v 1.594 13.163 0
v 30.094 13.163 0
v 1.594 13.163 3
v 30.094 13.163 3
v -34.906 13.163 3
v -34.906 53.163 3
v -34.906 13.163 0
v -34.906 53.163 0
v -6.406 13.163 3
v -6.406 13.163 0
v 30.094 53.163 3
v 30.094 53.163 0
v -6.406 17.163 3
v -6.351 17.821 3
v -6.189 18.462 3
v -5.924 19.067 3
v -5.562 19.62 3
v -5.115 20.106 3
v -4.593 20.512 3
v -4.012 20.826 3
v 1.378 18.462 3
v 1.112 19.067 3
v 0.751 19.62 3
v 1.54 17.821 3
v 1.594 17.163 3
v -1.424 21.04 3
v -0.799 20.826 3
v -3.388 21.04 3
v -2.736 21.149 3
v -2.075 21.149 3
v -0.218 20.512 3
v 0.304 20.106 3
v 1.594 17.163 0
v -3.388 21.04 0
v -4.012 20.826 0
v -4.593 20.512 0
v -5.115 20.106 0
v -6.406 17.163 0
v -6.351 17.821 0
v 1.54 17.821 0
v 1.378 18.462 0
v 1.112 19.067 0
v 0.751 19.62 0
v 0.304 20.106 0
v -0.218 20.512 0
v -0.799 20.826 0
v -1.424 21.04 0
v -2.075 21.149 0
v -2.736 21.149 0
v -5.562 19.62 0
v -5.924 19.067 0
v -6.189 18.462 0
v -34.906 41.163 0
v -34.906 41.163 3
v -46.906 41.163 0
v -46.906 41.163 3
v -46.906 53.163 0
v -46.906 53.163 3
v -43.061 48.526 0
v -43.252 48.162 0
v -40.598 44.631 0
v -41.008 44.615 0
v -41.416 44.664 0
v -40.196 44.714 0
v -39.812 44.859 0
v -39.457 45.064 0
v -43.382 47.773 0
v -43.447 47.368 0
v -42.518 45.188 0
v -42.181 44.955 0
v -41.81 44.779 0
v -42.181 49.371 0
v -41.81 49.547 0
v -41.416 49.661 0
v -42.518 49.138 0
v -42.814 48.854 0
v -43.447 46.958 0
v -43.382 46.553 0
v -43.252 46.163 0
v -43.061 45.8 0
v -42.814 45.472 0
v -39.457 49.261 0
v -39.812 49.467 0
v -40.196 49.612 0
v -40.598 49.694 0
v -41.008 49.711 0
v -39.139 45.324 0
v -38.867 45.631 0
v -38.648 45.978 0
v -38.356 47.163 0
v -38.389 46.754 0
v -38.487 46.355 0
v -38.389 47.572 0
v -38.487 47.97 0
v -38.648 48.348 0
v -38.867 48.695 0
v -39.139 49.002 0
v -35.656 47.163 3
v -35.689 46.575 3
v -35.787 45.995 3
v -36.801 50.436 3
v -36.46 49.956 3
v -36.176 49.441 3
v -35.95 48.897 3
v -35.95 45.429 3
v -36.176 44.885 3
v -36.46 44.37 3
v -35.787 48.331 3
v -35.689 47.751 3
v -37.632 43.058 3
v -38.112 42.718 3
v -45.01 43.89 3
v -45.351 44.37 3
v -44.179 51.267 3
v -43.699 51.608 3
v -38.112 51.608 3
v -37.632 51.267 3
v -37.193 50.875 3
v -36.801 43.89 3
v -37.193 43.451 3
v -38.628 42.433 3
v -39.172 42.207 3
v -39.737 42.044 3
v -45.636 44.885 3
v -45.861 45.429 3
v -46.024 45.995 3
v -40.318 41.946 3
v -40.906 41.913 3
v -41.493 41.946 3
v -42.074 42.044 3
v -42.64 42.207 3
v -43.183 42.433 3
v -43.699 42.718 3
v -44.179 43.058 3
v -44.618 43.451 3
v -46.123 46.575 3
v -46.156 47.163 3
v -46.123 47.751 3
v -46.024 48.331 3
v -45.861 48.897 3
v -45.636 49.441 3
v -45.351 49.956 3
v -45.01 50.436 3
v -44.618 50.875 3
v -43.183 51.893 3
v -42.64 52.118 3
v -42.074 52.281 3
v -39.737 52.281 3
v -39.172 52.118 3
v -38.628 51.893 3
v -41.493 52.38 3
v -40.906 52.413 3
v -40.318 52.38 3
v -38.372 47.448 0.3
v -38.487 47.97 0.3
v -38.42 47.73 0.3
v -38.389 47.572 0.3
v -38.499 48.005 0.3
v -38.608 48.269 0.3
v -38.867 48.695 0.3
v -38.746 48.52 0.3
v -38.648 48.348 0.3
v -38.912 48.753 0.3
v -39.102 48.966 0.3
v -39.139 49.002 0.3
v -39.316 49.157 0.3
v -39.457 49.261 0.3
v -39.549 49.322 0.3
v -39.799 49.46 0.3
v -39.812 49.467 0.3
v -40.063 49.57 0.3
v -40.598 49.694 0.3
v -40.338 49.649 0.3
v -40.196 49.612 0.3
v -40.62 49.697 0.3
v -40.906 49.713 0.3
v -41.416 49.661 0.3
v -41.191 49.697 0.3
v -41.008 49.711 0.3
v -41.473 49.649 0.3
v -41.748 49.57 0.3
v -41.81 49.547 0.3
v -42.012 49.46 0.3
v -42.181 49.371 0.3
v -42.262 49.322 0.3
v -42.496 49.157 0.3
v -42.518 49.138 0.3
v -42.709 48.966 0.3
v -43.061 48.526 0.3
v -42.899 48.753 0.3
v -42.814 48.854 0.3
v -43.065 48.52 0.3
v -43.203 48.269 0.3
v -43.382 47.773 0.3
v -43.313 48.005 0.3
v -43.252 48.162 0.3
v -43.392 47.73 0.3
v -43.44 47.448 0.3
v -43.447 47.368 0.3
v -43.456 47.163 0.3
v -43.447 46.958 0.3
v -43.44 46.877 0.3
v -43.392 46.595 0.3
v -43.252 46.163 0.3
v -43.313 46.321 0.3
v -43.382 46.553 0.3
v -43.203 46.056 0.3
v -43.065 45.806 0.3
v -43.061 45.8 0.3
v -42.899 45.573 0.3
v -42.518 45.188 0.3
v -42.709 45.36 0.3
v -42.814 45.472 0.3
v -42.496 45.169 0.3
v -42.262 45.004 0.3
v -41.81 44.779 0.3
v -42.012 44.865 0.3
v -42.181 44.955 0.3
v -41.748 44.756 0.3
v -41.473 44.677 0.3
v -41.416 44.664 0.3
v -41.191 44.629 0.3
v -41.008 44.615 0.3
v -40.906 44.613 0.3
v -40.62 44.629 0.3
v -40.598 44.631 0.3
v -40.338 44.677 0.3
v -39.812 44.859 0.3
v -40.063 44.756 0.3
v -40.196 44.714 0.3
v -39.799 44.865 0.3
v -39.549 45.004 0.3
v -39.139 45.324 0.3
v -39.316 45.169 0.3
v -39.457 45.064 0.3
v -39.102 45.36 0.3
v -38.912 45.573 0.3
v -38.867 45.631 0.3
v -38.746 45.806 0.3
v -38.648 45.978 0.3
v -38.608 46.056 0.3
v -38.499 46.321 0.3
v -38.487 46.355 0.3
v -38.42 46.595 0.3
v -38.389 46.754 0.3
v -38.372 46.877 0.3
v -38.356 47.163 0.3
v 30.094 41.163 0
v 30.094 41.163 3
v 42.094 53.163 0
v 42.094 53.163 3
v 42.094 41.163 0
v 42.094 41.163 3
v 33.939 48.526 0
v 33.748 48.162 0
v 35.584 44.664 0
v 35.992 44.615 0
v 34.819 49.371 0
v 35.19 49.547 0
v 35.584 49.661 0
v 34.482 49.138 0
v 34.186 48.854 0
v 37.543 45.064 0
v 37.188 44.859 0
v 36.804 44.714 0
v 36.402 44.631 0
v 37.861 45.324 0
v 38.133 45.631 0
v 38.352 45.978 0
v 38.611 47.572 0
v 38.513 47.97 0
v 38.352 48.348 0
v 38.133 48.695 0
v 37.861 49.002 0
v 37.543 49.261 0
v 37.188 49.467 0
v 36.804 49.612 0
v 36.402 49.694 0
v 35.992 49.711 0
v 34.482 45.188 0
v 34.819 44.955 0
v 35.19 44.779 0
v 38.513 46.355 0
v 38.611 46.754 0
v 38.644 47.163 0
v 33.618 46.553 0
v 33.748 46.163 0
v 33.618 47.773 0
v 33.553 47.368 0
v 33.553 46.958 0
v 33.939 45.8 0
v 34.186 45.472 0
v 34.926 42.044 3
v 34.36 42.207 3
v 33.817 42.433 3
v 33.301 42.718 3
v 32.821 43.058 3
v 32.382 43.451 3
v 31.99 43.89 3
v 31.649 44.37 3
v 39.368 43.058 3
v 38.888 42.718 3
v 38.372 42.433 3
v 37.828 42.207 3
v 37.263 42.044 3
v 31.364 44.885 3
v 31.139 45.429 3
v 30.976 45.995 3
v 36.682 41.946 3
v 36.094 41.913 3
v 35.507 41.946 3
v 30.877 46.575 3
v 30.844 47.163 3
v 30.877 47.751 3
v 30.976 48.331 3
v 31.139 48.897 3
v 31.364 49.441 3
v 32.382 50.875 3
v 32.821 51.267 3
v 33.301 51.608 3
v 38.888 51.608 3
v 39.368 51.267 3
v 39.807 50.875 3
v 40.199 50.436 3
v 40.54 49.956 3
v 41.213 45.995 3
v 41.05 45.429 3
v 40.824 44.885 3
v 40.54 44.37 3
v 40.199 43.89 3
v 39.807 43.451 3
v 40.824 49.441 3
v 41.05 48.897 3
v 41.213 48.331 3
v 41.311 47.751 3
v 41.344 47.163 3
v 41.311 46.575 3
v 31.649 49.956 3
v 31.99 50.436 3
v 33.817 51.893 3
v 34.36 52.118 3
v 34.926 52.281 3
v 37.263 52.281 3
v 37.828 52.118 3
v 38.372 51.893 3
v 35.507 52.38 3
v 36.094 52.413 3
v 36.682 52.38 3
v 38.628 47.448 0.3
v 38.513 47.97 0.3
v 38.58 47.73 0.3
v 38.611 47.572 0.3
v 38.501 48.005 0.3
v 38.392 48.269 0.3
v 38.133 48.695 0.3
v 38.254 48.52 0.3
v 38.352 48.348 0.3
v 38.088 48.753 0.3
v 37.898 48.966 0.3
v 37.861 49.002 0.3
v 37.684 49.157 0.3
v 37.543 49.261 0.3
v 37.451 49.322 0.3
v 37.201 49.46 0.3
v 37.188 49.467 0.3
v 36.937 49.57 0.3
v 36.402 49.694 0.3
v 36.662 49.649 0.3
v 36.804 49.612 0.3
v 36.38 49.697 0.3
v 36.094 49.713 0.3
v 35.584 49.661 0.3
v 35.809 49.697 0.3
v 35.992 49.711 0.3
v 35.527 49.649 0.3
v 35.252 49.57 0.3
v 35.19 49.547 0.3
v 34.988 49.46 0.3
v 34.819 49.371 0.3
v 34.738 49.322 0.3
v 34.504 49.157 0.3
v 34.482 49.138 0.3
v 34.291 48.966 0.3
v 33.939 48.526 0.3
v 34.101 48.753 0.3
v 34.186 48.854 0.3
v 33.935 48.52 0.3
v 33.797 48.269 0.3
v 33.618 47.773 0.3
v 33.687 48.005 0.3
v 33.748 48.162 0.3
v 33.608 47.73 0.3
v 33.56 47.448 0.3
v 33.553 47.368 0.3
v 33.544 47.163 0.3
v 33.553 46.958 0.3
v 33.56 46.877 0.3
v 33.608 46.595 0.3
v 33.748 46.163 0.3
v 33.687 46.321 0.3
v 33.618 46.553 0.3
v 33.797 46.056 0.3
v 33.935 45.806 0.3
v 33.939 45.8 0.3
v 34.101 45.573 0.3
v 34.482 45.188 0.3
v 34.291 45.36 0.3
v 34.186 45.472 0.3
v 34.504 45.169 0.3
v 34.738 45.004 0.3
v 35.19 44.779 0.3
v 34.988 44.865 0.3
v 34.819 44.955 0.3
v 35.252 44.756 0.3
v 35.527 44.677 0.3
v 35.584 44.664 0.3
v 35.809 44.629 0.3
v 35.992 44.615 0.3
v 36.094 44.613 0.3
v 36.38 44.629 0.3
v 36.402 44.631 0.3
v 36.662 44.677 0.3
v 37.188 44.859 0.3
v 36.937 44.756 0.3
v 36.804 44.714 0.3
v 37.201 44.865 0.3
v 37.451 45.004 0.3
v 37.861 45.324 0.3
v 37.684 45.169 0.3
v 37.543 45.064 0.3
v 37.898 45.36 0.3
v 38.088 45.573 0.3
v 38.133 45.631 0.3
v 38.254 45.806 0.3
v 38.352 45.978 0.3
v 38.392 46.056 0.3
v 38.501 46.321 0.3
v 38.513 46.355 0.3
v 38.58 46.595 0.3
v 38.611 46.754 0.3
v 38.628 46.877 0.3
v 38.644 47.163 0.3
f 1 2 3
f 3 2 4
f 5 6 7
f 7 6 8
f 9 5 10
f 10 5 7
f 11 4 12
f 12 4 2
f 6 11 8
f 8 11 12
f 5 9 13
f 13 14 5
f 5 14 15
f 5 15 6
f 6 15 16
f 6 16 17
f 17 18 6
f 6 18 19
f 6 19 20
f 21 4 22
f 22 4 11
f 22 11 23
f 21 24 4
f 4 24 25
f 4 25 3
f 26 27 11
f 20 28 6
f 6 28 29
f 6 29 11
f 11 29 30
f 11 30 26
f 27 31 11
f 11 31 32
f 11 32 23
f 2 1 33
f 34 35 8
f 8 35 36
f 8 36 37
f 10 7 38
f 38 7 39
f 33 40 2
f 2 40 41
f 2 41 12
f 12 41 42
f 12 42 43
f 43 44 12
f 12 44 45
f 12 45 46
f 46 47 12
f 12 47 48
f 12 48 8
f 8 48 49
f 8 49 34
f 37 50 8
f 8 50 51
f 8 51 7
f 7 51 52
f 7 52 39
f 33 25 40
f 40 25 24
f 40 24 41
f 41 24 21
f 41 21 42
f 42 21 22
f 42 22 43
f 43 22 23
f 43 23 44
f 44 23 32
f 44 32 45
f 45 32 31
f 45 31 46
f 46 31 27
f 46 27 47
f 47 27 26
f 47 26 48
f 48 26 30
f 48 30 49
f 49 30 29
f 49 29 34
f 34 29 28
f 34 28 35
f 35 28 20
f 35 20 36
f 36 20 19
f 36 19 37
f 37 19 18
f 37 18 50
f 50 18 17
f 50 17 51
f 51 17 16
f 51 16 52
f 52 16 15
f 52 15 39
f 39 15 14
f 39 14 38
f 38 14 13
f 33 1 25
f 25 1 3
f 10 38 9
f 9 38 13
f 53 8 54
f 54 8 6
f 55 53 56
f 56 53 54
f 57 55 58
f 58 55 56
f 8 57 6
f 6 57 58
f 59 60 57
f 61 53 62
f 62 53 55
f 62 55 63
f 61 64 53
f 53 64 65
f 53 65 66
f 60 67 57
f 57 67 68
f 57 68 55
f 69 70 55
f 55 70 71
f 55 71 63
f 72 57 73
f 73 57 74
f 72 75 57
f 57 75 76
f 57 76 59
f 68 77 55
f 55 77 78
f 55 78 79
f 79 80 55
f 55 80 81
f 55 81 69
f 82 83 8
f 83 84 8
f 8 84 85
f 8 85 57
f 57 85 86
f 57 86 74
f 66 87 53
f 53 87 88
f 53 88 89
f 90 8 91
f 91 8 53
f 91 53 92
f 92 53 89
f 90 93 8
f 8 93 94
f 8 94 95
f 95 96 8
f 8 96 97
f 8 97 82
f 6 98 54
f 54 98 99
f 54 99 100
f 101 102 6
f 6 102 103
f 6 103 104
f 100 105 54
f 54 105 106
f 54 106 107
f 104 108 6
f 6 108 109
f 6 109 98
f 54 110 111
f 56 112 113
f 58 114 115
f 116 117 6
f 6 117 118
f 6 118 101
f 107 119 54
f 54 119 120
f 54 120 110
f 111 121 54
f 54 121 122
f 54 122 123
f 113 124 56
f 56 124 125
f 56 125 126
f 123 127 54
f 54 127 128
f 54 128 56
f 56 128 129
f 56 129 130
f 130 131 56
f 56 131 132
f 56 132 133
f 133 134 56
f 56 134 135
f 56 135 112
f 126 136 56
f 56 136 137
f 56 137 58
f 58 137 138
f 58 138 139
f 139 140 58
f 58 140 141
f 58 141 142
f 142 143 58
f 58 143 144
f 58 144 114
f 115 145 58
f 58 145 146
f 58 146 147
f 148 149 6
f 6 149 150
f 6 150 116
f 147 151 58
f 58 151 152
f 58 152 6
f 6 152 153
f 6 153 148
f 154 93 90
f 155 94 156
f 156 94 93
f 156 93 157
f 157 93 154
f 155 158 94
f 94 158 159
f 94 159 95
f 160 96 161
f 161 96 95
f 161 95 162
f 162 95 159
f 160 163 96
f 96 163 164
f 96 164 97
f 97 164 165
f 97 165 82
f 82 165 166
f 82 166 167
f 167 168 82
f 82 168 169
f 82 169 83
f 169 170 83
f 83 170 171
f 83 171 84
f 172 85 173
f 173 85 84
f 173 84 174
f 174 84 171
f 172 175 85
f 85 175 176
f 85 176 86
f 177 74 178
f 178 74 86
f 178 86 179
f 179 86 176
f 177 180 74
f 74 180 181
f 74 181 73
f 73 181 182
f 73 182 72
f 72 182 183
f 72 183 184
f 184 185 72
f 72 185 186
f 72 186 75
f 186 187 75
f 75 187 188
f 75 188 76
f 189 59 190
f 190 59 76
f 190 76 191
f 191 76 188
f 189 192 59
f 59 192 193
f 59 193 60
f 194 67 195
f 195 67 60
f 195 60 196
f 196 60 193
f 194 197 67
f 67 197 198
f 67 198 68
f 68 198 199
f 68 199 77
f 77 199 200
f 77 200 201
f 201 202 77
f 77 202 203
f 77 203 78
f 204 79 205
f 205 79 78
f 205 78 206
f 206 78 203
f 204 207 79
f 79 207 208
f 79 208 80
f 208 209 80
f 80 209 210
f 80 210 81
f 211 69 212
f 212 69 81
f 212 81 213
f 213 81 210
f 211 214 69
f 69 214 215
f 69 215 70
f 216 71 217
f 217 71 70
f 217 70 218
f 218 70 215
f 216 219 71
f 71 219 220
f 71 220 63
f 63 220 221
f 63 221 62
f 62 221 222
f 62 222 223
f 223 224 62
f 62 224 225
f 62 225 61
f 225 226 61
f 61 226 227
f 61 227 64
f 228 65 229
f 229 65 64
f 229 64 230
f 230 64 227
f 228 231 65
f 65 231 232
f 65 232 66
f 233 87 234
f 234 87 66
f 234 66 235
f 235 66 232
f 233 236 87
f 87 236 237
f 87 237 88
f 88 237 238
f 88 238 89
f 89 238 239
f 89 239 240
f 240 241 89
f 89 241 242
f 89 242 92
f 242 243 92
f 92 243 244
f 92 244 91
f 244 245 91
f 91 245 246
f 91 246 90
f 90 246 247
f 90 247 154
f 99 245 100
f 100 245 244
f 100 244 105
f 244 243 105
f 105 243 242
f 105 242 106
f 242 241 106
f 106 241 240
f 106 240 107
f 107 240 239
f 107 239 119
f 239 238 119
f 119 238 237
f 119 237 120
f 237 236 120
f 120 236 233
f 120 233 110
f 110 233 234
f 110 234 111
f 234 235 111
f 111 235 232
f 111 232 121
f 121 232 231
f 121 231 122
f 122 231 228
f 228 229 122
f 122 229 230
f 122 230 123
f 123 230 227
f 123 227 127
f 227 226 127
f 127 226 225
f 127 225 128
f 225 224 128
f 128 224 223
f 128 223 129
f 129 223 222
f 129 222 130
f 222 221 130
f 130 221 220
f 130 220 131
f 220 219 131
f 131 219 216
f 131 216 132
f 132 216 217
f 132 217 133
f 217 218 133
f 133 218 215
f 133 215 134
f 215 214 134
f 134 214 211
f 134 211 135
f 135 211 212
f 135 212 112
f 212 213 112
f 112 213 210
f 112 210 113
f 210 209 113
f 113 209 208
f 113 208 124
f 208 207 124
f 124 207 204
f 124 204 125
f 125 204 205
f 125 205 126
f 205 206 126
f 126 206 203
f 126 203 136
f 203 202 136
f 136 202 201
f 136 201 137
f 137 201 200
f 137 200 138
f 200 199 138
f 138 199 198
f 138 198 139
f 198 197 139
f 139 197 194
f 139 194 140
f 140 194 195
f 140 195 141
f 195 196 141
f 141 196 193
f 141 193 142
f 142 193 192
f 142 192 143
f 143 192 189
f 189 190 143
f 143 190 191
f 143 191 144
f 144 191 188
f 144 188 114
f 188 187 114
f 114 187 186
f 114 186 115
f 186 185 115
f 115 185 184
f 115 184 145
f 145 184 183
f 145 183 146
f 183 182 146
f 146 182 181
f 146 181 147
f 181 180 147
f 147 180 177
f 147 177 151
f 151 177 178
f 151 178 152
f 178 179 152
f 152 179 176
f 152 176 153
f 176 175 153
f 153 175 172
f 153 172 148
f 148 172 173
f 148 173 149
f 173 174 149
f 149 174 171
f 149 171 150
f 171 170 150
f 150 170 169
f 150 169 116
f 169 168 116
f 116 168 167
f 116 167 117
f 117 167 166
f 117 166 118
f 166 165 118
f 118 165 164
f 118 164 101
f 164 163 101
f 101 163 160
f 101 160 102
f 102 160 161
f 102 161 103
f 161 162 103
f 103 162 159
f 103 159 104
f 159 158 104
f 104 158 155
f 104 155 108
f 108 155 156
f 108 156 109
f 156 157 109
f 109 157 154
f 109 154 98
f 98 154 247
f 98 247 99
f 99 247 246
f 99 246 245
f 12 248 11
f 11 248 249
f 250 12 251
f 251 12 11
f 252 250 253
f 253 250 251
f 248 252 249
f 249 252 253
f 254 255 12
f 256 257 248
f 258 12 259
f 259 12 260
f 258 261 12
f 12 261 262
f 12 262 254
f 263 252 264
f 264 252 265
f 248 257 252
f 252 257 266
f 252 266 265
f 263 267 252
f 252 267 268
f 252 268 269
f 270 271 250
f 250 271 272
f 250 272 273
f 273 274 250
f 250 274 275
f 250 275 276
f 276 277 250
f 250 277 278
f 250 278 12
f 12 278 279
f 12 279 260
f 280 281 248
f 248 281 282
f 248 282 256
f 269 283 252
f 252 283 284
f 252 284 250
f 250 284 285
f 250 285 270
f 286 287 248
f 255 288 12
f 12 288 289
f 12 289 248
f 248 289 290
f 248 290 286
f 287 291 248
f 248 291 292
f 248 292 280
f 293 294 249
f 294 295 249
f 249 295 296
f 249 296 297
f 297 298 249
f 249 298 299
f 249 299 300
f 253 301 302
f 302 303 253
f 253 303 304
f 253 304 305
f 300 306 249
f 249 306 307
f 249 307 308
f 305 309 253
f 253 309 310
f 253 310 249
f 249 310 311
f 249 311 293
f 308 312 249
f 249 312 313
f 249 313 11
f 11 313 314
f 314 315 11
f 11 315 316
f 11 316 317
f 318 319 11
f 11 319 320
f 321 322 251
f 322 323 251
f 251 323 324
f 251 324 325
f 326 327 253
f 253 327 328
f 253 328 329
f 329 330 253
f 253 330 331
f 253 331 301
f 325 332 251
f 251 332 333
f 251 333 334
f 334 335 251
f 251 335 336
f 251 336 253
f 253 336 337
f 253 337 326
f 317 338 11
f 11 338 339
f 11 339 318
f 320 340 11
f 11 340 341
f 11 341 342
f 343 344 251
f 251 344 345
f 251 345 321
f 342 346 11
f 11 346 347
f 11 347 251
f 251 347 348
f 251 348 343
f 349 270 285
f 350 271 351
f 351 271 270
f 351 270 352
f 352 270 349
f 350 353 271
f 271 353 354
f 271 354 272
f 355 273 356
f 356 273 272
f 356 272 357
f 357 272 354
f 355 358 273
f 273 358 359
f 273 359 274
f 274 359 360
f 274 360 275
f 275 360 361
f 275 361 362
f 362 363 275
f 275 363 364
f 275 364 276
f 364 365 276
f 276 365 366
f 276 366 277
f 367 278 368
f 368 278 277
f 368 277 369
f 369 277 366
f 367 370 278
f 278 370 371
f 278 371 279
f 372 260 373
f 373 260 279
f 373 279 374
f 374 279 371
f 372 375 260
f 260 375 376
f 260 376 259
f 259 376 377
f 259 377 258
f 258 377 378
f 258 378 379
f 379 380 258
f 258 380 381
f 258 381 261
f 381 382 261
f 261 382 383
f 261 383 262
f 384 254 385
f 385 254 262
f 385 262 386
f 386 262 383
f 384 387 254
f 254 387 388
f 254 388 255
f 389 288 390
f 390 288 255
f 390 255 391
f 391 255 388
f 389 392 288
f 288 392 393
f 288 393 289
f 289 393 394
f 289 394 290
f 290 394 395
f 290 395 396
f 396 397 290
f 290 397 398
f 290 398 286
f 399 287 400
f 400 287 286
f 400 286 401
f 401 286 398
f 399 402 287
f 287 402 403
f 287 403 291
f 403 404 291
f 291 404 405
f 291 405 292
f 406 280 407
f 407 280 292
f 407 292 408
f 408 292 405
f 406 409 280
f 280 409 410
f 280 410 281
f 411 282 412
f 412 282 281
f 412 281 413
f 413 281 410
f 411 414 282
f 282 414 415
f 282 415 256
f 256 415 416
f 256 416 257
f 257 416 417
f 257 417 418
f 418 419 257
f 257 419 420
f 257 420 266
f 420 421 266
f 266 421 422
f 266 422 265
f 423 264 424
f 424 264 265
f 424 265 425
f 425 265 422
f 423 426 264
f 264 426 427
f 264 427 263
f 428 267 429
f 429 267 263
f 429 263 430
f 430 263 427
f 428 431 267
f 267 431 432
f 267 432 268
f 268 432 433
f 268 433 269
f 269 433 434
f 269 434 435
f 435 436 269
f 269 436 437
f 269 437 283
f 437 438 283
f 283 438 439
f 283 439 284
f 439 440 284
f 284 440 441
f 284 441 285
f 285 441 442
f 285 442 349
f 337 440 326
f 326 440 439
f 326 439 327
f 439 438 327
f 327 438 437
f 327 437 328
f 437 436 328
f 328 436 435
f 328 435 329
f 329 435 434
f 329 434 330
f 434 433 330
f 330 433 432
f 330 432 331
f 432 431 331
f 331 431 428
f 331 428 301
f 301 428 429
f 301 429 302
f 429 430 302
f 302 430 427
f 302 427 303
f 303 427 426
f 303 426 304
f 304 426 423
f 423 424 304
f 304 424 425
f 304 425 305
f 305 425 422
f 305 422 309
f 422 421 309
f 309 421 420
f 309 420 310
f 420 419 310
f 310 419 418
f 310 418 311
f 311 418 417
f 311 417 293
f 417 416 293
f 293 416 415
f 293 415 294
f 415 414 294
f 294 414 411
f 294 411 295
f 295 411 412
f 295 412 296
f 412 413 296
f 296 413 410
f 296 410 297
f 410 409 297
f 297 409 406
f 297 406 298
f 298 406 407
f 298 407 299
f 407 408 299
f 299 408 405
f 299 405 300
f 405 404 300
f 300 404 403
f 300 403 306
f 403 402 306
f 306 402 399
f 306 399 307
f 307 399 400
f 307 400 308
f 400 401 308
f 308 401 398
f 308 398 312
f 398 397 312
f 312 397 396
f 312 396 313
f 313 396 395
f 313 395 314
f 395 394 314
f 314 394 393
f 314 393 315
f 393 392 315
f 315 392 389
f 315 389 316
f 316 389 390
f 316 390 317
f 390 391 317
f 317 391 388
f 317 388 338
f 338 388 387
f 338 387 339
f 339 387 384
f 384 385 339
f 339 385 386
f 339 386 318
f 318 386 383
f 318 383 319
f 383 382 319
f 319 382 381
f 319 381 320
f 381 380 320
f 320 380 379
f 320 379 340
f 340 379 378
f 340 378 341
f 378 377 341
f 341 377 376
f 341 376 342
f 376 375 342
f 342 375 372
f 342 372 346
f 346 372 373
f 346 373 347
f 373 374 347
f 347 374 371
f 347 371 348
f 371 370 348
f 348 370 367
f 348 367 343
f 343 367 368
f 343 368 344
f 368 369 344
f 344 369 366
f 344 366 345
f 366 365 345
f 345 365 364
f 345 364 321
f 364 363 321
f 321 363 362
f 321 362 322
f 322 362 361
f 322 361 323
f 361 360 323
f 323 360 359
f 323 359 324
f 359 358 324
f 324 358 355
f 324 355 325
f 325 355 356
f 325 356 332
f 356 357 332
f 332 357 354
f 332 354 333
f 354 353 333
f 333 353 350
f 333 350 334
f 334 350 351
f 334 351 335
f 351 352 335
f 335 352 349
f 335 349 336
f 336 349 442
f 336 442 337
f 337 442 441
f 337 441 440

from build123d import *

# Parameters (mm, degrees)
ESQUISSE1_W                                = 65
ESQUISSE1_H                                = 40
BOSS_EXTRU_1_DEPTH                         = 3
ESQUISSE2_W                                = 12
ESQUISSE2_H                                = 12
BOSS_EXTRU_2_DEPTH                         = 3
BOSS_EXTRU_2_2_DEPTH                       = 3
ENL_V_MAT_EXTRU_1_DEPTH                    = 4
FRAISAGE_POUR_VIS_T_TE_FRAIS_E_BOM_2_COUNT = 2
FRAISAGE_POUR_VIS_T_TE_FRAIS_E_BOM_2_PITCH = 77


with BuildPart() as part:
    # Esquisse1 → Boss.-Extru.1 (new body)
    with BuildSketch(Plane.XY):
        with Locations((-2.405605858, 33.162869601)):
            Rectangle(ESQUISSE1_W, ESQUISSE1_H)
    extrude(amount=BOSS_EXTRU_1_DEPTH)

    # Esquisse4 → Enlèv. mat.-Extru.1 (cut, through all)
    with BuildSketch(Plane.XY.offset(3)):
        with BuildLine():
            Line((-6.405605858, 17.162869601), (-6.405605858, 13.162869601))
            Line((-6.405605858, 13.162869601), (1.594394142, 13.162869601))
            Line((1.594394142, 13.162869601), (1.594394142, 17.162868612))
            ThreePointArc((1.594394142, 17.162868612), (-2.405605364, 21.162869107), (-6.405605858, 17.162869601))
        make_face()
    extrude(amount=-ENL_V_MAT_EXTRU_1_DEPTH, mode=Mode.SUBTRACT)


with BuildPart() as body_2:
    # Esquisse2 → Boss.-Extru.2 (new body)
    with BuildSketch(Plane.XY.offset(3)):
        with Locations((-40.905605858, 47.162869601)):
            Rectangle(ESQUISSE2_W, ESQUISSE2_H)
    extrude(amount=-BOSS_EXTRU_2_DEPTH)

    # Esquisse6 → Fraisage pour vis à tête fraisée bombée #51 (revolve, cut)
    with BuildSketch(Plane(origin=(-40.905605858, 47.162869601, 3), x_dir=(0, -1, 0), z_dir=(1, 0, 0))):
        Polygon((0, 0), (0, 3), (2.54999998, 3), (2.54999998, 2.700000061), (5.250000041, 0), align=None)
    fraisage_pour_vis_t_te_frais_e_bomb_e = revolve(axis=Axis((-40.905605858, 47.162869601, 9.35), (0, 0, -1)), mode=Mode.SUBTRACT)


with BuildPart() as body_3:
    # Esquisse2 → Boss.-Extru.2 2 (new body)
    with BuildSketch(Plane.XY.offset(3)):
        with Locations((36.094394142, 47.162869601)):
            Rectangle(ESQUISSE2_W, ESQUISSE2_H)
    extrude(amount=-BOSS_EXTRU_2_2_DEPTH)

    # Fraisage pour vis _ t_te frais_e bom 2: Fraisage pour vis à tête fraisée bombée #51 ×2
    with Locations(*[(i * FRAISAGE_POUR_VIS_T_TE_FRAIS_E_BOM_2_PITCH, 0, 0) for i in range(1, FRAISAGE_POUR_VIS_T_TE_FRAIS_E_BOM_2_COUNT)]):
        add(fraisage_pour_vis_t_te_frais_e_bomb_e, mode=Mode.SUBTRACT)


solid = Compound([part.part, body_2.part, body_3.part])
